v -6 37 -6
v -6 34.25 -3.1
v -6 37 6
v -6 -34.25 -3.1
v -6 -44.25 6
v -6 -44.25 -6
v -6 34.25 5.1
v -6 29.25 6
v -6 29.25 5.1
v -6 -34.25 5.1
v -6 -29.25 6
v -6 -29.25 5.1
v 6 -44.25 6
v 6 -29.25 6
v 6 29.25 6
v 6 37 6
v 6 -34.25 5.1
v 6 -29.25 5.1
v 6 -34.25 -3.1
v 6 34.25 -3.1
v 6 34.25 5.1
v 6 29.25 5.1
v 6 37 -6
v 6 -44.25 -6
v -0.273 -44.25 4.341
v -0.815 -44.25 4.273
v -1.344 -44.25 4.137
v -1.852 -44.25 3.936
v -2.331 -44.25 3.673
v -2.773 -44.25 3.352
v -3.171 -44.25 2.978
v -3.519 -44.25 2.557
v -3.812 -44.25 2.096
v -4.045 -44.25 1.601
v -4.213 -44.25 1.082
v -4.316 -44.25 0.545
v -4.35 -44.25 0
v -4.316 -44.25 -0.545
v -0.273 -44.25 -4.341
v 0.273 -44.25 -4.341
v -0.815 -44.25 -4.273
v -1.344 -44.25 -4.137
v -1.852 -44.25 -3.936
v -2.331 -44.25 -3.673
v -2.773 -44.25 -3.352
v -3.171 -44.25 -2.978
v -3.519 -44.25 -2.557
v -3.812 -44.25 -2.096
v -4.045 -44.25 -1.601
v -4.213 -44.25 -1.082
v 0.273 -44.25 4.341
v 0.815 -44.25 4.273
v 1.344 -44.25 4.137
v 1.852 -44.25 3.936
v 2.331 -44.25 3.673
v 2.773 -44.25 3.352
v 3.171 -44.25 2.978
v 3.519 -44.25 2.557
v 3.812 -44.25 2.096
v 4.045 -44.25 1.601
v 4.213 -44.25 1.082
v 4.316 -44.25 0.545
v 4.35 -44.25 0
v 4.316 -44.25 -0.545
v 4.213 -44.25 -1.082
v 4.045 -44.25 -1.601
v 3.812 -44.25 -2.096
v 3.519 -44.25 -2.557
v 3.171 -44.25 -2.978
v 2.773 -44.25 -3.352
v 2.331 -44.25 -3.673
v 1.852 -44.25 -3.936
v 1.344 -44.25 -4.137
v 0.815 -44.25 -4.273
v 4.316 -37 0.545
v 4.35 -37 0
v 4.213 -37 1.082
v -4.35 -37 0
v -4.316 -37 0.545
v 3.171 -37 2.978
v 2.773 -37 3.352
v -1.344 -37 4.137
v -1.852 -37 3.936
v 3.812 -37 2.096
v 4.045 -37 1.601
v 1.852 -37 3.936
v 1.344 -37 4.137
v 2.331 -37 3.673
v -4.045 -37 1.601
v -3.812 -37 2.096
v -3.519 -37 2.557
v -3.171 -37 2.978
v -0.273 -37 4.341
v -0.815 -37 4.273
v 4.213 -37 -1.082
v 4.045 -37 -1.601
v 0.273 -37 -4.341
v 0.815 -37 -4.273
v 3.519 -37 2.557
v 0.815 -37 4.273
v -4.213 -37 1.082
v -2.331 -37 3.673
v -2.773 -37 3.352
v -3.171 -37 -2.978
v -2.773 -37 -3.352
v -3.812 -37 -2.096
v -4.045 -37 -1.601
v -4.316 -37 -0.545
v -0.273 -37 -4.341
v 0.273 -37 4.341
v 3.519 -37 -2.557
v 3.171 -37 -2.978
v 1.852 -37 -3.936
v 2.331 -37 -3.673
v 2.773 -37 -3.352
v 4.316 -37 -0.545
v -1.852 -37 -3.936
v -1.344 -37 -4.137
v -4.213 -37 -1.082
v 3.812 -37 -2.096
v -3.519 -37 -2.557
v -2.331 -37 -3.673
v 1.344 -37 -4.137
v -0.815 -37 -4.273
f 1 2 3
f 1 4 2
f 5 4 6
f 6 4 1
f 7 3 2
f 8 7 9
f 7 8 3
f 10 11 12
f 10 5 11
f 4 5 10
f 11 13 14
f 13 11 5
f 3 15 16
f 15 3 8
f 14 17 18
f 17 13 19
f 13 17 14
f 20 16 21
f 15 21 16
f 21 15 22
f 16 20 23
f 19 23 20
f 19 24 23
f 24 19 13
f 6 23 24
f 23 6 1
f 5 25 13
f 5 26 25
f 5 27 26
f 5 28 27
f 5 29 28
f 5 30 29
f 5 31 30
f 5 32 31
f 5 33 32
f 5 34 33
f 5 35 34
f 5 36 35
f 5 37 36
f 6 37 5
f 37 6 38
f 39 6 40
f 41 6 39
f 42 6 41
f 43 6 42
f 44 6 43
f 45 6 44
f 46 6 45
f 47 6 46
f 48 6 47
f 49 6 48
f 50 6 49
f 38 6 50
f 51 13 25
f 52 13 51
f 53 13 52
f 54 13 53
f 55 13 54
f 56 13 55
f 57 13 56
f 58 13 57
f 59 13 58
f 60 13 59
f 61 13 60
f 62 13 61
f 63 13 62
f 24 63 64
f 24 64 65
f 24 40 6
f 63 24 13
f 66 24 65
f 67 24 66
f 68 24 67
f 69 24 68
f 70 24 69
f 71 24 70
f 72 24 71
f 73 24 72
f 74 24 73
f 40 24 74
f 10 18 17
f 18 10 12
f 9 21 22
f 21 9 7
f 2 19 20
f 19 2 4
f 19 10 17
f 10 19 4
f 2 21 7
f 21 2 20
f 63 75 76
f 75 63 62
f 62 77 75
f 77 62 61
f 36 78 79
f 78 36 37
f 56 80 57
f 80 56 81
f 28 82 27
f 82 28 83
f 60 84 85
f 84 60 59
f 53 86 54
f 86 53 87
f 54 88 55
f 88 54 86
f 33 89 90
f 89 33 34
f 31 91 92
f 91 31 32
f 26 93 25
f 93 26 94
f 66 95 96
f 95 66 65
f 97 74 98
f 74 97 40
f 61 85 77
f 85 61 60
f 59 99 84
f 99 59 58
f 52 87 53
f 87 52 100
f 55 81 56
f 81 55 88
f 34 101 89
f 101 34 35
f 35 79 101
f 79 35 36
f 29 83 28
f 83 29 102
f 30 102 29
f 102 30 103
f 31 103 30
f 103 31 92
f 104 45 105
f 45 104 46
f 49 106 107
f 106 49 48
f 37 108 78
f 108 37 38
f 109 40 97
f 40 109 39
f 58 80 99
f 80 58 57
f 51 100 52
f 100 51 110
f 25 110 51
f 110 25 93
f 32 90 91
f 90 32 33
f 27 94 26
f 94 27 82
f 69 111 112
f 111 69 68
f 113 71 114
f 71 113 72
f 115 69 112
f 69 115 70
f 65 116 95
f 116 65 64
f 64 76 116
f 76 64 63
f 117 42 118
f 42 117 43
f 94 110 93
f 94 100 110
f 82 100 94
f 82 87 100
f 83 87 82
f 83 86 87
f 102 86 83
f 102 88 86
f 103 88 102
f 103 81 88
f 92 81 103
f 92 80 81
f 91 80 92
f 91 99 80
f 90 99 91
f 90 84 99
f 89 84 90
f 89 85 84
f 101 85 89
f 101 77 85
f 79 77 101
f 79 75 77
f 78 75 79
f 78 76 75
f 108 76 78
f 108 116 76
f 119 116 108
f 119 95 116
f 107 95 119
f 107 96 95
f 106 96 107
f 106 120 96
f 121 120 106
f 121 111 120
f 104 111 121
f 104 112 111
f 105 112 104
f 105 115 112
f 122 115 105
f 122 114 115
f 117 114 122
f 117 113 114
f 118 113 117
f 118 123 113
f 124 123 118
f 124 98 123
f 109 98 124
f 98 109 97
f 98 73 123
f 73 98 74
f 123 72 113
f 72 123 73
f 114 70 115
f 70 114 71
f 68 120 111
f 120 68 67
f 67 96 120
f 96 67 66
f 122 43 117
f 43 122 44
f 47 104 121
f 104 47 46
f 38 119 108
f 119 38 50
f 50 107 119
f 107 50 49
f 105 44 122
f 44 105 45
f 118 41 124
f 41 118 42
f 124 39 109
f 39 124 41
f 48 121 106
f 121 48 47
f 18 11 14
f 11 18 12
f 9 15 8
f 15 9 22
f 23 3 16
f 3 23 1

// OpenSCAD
// phone tripod mount
// galaxy s7 
// 68.5 - 8.2

// schraubbuchse
// 7.2 höhe, 8.5-9 durchmesser

difference(){
    cube([12, 68.5+20, 12], center=true);
    
    // galaxy
    translate([0,0,1])
    cube([100, 68.5, 8.2], center=true);
    
    translate([0,68.5/2-8.2/2,1])
    rotate([0,90,0])
    cylinder(r=8.2/2, h=20, center=true,$fn=50);
    
    translate([0,-68.5/2+8.2/2,1])
    rotate([0,90,0])
    cylinder(r=8.2/2, h=20, center=true,$fn=50);
    
    // schraubbuchse
    translate([0,-(68.5+20)/2. + 7.2/2.,0])
    rotate([90,0,0])
    #cylinder(r=8.7/2, h=7.3, center=true, $fn=50);
    
    // cutout
    translate([0,0,2])
    cube([100, 58.5, 10], center=true);
    
    // cutoff
    translate([0,47,0])
    cube([20,20,20], center=true);
}
